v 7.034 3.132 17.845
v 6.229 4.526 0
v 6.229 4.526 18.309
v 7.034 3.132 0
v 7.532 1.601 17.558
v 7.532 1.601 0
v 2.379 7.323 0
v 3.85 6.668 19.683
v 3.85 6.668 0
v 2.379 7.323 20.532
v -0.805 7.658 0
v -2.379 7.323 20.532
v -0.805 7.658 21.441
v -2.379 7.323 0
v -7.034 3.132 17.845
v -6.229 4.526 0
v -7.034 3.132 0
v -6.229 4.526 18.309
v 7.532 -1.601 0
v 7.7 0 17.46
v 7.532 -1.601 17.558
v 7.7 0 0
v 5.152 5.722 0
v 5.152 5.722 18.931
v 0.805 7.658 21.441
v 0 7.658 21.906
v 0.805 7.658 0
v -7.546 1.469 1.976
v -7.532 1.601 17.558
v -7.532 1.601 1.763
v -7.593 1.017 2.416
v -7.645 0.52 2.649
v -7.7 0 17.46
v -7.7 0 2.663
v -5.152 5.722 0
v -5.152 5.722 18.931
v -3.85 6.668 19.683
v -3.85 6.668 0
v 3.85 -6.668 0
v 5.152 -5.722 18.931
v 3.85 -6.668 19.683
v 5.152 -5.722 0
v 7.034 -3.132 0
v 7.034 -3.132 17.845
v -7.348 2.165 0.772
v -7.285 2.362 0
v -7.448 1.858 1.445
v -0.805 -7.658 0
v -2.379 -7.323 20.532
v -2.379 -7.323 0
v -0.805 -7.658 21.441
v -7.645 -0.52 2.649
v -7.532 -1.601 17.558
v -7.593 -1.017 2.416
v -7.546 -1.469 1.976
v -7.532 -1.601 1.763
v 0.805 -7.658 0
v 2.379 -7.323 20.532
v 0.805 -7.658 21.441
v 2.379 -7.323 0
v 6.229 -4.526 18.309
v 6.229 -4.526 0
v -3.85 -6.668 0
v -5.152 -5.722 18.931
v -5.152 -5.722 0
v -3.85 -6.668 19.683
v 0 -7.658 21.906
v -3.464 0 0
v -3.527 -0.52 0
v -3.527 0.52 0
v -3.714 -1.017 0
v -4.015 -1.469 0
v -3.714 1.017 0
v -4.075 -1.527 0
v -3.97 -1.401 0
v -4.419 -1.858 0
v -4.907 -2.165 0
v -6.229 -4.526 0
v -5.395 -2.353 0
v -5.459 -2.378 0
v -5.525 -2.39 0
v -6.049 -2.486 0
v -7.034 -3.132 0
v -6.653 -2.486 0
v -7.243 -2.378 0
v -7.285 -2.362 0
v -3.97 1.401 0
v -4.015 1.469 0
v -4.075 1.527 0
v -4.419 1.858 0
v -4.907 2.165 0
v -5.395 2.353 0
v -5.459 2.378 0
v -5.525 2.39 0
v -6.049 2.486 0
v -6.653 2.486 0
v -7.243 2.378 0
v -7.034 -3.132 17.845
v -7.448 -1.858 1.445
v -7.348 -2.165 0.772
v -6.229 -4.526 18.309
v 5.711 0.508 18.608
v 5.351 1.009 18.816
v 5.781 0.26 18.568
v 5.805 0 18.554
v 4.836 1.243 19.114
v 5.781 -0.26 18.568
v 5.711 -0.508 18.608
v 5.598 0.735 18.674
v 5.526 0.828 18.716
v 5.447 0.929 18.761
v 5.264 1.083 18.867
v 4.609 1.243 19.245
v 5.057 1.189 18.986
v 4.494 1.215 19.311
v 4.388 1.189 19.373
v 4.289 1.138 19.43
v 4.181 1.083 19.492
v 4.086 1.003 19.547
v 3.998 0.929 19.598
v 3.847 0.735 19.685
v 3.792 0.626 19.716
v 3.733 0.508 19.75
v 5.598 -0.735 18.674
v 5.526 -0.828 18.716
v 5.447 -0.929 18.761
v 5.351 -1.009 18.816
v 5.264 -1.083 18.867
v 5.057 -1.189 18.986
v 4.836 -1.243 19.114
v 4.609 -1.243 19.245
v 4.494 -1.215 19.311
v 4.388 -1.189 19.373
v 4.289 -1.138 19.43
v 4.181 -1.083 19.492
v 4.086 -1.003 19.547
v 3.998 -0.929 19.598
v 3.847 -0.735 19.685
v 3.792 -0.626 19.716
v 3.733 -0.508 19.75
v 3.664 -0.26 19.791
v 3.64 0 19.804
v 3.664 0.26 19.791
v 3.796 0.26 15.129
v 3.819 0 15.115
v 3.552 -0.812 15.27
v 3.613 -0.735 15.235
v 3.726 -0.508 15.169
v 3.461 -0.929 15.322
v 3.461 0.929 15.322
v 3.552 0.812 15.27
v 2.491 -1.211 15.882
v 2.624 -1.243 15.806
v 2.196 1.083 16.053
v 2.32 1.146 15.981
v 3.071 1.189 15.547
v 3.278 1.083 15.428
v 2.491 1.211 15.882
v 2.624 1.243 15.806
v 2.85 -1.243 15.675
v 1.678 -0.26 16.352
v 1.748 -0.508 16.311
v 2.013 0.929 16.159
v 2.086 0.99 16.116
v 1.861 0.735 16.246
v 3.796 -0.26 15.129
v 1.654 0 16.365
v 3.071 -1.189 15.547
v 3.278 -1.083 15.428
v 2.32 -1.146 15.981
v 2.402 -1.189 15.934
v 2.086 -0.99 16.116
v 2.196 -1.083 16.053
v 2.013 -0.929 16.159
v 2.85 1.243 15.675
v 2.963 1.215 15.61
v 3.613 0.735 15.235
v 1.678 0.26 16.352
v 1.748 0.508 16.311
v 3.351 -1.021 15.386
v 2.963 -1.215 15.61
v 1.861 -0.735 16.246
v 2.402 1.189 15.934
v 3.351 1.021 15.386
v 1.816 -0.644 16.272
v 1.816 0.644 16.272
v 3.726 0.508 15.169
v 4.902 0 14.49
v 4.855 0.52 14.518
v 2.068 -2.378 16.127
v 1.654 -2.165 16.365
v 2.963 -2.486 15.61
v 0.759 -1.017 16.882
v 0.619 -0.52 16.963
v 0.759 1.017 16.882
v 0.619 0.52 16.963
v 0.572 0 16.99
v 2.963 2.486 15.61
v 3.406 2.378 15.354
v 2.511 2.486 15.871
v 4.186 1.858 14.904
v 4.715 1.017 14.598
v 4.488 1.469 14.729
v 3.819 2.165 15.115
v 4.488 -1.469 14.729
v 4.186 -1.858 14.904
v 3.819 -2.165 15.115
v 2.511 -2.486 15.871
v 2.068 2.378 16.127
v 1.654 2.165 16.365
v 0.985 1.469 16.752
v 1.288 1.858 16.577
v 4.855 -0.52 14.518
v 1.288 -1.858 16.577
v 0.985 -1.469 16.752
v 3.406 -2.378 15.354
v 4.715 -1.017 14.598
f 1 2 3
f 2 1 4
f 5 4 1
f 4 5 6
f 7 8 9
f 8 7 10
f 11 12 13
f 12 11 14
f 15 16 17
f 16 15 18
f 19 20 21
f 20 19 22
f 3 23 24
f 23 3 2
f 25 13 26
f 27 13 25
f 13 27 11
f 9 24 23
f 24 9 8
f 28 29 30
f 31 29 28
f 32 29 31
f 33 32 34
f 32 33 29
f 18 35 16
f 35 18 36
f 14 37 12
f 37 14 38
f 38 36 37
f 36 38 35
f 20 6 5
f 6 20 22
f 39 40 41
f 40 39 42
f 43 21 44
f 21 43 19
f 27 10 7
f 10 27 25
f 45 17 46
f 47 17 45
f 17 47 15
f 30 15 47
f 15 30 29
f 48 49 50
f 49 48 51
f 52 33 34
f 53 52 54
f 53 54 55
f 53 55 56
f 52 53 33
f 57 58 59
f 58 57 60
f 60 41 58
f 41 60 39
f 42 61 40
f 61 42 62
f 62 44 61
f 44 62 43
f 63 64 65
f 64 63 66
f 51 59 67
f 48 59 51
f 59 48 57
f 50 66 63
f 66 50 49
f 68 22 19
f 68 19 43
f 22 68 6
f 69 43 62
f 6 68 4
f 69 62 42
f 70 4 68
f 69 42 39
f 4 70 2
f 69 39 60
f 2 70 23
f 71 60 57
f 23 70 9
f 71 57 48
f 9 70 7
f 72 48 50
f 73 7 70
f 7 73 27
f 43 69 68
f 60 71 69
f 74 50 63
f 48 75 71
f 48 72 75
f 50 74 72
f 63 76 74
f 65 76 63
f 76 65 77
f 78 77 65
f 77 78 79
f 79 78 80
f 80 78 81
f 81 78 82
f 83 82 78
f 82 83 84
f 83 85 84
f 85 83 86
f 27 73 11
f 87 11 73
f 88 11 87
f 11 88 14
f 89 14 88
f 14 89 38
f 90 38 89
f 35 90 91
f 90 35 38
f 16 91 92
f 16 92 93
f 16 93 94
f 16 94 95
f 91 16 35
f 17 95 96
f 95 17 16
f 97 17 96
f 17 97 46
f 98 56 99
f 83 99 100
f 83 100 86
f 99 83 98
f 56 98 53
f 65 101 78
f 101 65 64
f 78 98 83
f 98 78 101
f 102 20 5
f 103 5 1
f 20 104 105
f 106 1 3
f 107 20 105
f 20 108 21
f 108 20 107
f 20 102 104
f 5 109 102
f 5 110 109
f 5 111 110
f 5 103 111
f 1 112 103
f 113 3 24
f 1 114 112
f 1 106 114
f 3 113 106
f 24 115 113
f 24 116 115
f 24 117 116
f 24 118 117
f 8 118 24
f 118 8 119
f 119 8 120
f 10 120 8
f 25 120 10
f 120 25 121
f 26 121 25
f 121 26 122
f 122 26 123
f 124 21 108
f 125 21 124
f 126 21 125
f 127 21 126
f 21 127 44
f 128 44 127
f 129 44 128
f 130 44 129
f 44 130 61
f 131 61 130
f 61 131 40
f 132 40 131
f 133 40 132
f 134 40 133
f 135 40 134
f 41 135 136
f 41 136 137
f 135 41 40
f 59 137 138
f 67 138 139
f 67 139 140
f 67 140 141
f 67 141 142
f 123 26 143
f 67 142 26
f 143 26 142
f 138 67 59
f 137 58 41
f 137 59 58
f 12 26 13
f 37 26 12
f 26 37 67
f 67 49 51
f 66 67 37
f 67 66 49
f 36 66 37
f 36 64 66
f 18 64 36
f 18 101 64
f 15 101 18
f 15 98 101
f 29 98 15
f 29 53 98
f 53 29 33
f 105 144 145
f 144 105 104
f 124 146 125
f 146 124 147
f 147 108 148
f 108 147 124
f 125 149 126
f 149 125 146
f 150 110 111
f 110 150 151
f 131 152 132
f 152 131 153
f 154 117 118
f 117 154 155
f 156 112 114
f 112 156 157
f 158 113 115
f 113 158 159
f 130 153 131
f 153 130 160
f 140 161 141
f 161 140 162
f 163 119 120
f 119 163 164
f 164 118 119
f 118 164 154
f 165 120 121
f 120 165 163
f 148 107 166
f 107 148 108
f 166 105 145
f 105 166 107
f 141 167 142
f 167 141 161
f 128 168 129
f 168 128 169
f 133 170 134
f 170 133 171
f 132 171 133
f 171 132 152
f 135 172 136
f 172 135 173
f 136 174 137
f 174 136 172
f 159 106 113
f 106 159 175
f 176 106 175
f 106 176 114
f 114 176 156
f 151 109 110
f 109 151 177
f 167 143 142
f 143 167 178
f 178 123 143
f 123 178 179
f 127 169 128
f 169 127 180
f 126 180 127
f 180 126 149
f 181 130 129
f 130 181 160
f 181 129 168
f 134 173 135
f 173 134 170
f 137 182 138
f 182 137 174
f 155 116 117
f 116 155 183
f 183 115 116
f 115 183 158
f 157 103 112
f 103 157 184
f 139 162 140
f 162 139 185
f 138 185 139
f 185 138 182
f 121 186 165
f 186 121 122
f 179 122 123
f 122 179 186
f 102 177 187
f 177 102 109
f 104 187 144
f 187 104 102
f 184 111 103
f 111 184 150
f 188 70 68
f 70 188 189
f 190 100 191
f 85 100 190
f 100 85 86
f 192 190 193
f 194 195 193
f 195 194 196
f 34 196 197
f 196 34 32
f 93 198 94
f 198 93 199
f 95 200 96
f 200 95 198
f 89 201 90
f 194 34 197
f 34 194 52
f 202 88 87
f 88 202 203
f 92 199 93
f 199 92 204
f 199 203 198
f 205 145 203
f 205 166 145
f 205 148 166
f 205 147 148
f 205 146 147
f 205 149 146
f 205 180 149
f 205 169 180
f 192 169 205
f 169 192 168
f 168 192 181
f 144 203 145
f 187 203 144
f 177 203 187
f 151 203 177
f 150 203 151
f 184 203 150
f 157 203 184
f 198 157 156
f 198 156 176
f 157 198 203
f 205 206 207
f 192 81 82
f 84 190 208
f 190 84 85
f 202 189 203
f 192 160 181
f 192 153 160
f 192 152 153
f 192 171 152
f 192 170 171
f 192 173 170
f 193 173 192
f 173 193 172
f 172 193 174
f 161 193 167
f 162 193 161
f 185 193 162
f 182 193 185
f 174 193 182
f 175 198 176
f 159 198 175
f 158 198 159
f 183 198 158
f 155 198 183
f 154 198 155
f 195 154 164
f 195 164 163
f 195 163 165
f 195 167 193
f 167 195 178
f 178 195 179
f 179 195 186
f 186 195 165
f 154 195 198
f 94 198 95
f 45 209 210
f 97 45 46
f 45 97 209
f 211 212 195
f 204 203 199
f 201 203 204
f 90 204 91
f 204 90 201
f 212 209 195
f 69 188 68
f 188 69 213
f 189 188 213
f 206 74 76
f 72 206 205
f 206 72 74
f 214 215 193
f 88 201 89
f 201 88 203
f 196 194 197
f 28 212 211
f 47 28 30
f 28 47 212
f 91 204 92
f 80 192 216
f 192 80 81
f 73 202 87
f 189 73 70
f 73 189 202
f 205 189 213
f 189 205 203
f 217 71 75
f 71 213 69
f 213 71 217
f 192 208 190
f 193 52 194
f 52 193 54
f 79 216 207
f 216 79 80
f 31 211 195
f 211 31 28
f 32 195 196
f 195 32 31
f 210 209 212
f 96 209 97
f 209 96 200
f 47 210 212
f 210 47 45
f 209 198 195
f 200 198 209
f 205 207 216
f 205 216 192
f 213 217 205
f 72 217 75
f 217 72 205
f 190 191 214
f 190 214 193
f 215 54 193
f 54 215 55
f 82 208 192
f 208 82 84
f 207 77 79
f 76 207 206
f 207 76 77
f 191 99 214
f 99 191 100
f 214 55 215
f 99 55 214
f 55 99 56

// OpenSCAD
difference(){
cylinder(d=15.4,h=30,$fn=30);
translate([0,0,45])
rotate([0,30,0])
cube([50,50,40],center=true);
translate([0,0,45])
rotate([0,30,180])
cube([50,50,40],center=true);    
rotate([0,30,0])
translate([-5.5,0,-5])
cylinder(d=2.5,h=50,$fn=30);
rotate([0,30,0])
translate([-5.5,0,-5])
cylinder(d=5,h=20,$fn=30);
}
